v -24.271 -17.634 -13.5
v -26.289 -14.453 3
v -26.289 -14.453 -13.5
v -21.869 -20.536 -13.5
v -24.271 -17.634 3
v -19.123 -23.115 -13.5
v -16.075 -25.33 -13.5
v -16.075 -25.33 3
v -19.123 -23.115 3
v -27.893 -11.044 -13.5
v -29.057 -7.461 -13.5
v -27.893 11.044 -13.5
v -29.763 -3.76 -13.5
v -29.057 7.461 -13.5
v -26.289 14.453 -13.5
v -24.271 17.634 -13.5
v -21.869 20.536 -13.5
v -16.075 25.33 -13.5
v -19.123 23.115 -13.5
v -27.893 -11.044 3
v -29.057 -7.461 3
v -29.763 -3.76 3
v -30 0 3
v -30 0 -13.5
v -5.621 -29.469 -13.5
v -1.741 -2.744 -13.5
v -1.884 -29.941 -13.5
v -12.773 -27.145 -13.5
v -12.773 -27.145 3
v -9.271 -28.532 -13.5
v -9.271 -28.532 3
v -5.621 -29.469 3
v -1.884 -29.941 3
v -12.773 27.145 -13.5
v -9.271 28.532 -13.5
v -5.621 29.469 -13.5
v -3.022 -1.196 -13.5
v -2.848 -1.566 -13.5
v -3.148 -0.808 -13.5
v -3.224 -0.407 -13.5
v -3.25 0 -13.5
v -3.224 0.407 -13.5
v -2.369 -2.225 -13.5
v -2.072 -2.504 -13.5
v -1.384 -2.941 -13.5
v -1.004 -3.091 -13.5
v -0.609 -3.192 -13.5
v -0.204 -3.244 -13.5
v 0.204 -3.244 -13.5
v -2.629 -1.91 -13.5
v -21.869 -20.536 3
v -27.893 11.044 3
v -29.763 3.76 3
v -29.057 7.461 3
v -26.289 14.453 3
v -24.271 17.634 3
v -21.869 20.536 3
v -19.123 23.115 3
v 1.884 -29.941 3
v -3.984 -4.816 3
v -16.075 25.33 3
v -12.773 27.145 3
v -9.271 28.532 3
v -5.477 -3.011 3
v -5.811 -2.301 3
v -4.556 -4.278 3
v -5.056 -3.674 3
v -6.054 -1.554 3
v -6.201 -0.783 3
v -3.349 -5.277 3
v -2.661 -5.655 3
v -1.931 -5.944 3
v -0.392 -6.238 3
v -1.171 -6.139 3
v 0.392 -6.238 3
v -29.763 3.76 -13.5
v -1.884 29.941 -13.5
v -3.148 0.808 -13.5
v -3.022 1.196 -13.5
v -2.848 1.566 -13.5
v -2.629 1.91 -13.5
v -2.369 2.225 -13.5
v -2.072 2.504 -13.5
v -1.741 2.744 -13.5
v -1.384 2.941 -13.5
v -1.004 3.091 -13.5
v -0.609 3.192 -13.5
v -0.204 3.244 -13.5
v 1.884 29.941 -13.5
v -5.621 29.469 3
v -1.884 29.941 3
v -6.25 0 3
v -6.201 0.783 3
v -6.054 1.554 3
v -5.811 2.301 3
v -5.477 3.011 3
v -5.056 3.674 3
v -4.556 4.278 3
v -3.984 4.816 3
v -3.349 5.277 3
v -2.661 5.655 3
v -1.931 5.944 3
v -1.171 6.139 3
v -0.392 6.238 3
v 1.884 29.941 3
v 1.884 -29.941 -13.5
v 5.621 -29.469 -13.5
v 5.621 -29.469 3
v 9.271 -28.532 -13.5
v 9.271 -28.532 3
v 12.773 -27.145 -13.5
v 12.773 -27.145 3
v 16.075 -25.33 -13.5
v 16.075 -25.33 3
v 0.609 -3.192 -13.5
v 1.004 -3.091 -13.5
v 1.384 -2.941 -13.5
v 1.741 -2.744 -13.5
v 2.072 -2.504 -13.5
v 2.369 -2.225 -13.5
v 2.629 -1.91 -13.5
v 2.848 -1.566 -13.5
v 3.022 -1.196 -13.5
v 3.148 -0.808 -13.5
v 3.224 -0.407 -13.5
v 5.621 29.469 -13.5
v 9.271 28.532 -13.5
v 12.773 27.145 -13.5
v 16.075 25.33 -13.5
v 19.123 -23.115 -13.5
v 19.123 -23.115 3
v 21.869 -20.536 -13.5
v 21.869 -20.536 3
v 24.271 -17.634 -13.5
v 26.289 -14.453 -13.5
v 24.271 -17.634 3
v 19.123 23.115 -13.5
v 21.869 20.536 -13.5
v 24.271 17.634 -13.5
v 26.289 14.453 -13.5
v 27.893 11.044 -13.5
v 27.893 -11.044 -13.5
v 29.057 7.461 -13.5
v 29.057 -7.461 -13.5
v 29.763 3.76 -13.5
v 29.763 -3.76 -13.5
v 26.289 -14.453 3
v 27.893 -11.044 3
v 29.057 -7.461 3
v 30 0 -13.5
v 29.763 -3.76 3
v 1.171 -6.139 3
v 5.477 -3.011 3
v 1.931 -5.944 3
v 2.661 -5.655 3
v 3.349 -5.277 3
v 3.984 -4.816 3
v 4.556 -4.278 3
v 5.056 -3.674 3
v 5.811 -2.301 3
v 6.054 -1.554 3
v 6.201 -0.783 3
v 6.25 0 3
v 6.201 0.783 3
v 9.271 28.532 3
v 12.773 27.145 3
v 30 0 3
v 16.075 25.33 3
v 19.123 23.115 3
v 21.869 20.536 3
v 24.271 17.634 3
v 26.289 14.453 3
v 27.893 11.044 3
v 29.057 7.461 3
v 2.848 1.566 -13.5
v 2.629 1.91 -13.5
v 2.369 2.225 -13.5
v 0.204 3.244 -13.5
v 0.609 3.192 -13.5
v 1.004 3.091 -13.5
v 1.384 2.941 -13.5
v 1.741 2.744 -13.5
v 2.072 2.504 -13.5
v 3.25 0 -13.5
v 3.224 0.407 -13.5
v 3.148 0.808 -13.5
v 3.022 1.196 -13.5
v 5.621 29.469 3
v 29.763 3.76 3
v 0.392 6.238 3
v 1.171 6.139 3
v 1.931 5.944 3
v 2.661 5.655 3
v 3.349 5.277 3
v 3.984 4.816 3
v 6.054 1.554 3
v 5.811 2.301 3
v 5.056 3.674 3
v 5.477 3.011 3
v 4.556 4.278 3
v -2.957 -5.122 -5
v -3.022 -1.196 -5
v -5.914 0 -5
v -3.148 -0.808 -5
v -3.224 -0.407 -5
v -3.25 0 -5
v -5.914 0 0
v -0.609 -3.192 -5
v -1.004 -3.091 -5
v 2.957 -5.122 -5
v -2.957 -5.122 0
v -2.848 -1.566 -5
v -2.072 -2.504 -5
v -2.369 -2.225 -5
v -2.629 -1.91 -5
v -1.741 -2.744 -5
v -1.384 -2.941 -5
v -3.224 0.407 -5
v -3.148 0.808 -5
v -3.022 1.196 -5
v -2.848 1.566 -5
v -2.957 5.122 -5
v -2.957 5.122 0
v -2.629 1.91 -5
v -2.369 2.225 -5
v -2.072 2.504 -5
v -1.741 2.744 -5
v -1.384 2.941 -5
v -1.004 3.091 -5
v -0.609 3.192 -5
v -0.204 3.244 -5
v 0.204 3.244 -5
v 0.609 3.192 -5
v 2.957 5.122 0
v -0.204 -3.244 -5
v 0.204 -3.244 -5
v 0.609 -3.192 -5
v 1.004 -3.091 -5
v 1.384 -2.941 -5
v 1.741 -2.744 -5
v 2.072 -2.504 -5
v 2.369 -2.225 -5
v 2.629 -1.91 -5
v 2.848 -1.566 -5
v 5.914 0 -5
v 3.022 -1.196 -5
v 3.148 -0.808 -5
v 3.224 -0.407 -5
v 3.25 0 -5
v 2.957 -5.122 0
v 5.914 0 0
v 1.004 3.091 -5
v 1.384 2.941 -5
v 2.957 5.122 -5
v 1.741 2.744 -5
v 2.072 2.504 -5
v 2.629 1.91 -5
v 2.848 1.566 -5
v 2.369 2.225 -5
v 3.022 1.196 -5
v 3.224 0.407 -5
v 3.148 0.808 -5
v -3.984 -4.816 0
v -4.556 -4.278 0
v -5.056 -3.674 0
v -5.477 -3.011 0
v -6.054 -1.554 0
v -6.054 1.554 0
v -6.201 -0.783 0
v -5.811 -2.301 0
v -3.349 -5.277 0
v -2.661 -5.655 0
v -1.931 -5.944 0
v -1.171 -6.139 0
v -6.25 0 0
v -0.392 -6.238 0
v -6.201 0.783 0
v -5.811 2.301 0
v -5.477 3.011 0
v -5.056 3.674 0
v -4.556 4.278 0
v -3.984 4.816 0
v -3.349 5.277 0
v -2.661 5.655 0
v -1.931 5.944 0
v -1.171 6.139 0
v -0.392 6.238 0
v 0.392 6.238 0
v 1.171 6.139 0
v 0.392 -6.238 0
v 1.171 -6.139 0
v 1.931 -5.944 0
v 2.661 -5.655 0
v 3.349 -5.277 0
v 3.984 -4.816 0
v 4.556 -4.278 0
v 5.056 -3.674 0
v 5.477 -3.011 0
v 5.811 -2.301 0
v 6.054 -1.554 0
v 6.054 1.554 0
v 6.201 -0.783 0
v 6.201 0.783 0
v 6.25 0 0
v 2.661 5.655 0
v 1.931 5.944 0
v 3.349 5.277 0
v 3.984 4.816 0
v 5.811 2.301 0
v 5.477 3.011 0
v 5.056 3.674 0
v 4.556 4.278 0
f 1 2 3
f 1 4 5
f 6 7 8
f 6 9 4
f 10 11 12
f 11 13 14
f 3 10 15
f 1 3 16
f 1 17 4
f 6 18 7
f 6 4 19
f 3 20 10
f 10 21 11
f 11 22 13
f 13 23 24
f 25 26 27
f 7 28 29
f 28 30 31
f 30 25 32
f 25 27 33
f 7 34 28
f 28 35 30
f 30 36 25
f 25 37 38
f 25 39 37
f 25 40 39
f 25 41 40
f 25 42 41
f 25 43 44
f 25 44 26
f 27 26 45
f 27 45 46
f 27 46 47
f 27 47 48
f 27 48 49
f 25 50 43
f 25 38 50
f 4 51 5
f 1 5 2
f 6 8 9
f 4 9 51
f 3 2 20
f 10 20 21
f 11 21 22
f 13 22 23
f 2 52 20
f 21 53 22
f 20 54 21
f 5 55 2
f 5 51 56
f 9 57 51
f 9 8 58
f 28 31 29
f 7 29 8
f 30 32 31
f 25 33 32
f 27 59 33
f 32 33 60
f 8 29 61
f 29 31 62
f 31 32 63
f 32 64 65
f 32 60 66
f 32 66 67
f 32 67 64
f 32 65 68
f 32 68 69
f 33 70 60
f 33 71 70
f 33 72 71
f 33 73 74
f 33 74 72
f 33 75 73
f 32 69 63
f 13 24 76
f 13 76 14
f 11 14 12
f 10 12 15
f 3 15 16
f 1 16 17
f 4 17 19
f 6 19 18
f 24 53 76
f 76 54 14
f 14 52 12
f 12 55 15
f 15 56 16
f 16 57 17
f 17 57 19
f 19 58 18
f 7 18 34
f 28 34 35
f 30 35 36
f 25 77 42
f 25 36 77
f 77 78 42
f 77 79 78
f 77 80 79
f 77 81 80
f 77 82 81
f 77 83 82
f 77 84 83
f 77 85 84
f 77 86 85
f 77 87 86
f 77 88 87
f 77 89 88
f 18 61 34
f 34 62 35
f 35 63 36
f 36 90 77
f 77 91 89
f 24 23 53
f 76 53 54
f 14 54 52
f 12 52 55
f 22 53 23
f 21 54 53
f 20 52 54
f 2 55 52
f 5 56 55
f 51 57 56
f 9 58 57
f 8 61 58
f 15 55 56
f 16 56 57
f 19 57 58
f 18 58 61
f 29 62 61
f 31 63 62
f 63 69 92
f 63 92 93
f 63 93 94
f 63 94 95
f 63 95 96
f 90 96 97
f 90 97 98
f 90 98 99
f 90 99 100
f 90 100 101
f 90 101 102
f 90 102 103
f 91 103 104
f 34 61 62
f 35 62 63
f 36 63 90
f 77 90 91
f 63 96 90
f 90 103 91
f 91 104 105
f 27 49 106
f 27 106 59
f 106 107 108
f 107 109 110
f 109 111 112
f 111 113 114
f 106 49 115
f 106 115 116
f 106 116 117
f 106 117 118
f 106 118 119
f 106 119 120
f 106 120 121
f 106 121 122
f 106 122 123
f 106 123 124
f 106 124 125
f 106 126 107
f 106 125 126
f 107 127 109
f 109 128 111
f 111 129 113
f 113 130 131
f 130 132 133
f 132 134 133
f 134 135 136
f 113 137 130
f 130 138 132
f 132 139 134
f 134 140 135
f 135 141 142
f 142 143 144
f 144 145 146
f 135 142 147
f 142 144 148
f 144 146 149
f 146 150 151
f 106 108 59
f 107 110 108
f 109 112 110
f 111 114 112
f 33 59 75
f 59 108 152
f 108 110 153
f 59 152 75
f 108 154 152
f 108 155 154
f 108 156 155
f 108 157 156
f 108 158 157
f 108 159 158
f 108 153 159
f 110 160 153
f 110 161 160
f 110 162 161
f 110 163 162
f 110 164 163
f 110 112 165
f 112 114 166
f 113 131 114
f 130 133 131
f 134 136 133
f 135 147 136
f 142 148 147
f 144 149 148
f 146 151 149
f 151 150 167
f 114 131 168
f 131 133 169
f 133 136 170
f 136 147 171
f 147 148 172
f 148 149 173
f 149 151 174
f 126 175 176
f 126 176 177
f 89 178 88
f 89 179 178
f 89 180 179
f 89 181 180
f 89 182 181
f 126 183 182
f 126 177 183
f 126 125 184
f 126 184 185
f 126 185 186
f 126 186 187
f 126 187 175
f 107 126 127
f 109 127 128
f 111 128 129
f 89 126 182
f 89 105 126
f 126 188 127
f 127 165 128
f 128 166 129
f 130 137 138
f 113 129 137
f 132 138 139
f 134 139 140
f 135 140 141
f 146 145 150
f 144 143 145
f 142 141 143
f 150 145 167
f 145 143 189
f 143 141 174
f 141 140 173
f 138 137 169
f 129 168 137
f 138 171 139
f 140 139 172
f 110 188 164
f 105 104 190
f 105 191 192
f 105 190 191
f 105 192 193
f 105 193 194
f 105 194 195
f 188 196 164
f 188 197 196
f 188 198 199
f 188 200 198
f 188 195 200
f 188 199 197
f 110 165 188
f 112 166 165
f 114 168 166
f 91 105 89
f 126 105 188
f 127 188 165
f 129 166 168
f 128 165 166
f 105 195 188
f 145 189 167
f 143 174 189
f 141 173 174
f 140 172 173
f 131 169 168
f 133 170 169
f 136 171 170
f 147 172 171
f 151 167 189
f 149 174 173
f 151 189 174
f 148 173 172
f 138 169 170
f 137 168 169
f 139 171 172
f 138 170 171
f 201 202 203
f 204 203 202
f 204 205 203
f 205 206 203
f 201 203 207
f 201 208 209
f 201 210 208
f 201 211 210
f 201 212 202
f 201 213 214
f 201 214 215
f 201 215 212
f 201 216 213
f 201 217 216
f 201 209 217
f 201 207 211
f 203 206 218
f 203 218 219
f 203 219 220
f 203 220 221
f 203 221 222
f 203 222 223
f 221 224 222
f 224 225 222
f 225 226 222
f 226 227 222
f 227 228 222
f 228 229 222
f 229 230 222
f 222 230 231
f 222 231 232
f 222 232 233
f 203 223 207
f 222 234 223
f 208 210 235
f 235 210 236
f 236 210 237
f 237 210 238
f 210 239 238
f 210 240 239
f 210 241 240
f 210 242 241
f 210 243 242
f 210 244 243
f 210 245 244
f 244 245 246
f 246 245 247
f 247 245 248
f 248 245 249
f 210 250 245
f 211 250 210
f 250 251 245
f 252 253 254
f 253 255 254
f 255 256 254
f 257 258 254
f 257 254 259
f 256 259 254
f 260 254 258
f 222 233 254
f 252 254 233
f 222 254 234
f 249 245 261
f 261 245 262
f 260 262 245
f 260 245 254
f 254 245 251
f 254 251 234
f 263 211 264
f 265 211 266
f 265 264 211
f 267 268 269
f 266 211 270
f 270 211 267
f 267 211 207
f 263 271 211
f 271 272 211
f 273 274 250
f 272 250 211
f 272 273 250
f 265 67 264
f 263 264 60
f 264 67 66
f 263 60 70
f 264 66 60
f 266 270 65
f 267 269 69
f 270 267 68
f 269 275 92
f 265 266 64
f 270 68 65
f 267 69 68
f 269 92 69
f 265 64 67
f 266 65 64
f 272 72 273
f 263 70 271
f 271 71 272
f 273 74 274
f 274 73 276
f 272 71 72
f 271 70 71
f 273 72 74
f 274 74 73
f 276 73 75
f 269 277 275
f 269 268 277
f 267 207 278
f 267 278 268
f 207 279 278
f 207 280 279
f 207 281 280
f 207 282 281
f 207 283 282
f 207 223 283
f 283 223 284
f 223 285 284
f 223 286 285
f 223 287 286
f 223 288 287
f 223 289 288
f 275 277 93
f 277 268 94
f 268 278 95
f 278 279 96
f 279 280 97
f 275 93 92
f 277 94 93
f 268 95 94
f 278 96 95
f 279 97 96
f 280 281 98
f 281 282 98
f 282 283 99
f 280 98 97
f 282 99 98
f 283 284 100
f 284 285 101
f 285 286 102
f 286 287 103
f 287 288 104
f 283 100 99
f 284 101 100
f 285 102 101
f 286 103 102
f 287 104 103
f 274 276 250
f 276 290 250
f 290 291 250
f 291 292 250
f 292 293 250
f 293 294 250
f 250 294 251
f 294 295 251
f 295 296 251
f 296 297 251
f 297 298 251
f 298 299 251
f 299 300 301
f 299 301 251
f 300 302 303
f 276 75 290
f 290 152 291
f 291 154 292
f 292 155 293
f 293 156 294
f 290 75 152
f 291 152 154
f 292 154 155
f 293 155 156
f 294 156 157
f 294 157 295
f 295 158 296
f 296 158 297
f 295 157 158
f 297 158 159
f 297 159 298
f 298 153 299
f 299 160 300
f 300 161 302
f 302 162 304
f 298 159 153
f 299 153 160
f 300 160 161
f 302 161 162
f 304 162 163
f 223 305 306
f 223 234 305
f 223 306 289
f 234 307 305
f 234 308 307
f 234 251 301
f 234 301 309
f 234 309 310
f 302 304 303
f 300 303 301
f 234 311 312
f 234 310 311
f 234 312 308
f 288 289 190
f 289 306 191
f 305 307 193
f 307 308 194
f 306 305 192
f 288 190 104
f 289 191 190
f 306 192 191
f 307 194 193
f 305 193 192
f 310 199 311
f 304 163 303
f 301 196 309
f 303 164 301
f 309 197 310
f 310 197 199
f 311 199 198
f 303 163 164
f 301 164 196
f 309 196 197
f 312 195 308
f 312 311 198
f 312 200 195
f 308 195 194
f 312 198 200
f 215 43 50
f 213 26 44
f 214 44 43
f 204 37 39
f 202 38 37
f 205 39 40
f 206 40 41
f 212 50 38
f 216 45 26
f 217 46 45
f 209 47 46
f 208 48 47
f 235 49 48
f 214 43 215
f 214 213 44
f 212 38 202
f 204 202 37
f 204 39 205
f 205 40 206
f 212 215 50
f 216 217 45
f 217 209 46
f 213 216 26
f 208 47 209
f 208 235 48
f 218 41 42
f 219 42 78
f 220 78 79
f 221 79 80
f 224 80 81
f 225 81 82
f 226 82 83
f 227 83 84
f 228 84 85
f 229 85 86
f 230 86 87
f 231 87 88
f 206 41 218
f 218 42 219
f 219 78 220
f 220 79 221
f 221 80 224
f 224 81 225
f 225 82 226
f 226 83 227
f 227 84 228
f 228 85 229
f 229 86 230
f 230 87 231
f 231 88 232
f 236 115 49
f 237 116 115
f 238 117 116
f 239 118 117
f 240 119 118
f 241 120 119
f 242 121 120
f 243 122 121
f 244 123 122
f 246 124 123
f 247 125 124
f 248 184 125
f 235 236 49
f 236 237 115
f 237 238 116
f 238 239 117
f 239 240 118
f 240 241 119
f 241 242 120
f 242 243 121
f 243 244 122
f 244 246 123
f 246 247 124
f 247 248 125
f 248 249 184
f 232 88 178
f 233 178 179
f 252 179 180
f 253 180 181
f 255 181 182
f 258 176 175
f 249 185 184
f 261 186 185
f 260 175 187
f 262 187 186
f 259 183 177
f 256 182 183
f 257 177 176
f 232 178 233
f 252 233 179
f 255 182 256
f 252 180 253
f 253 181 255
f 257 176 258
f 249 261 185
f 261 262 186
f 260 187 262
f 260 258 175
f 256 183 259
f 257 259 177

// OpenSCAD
$fn = 50;


difference() {
	union() {
		translate(v = [0, 0, -13.5000000000]) {
			cylinder(h = 16.5000000000, r = 30.0000000000);
		}
		#translate(v = [0, 0, -15.0000000000]) {
			cylinder(h = 15, r = 2.8750000000);
		}
	}
	union() {
		translate(v = [0, 0, 0]) {
			rotate(a = [0, 0, 0]) {
				difference() {
					union() {
						translate(v = [0, 0, -5]) {
							linear_extrude(height = 5) {
								polygon(points = [[5.9142500000, 0.0000000000], [2.9571250000, 5.1218907443], [-2.9571250000, 5.1218907443], [-5.9142500000, 0.0000000000], [-2.9571250000, -5.1218907443], [2.9571250000, -5.1218907443]]);
							}
						}
					}
					union();
				}
			}
		}
		#cylinder(h = 3, r = 6.2500000000);
		#translate(v = [0, 0, -100.0000000000]) {
			cylinder(h = 200, r = 3.2500000000);
		}
	}
}
